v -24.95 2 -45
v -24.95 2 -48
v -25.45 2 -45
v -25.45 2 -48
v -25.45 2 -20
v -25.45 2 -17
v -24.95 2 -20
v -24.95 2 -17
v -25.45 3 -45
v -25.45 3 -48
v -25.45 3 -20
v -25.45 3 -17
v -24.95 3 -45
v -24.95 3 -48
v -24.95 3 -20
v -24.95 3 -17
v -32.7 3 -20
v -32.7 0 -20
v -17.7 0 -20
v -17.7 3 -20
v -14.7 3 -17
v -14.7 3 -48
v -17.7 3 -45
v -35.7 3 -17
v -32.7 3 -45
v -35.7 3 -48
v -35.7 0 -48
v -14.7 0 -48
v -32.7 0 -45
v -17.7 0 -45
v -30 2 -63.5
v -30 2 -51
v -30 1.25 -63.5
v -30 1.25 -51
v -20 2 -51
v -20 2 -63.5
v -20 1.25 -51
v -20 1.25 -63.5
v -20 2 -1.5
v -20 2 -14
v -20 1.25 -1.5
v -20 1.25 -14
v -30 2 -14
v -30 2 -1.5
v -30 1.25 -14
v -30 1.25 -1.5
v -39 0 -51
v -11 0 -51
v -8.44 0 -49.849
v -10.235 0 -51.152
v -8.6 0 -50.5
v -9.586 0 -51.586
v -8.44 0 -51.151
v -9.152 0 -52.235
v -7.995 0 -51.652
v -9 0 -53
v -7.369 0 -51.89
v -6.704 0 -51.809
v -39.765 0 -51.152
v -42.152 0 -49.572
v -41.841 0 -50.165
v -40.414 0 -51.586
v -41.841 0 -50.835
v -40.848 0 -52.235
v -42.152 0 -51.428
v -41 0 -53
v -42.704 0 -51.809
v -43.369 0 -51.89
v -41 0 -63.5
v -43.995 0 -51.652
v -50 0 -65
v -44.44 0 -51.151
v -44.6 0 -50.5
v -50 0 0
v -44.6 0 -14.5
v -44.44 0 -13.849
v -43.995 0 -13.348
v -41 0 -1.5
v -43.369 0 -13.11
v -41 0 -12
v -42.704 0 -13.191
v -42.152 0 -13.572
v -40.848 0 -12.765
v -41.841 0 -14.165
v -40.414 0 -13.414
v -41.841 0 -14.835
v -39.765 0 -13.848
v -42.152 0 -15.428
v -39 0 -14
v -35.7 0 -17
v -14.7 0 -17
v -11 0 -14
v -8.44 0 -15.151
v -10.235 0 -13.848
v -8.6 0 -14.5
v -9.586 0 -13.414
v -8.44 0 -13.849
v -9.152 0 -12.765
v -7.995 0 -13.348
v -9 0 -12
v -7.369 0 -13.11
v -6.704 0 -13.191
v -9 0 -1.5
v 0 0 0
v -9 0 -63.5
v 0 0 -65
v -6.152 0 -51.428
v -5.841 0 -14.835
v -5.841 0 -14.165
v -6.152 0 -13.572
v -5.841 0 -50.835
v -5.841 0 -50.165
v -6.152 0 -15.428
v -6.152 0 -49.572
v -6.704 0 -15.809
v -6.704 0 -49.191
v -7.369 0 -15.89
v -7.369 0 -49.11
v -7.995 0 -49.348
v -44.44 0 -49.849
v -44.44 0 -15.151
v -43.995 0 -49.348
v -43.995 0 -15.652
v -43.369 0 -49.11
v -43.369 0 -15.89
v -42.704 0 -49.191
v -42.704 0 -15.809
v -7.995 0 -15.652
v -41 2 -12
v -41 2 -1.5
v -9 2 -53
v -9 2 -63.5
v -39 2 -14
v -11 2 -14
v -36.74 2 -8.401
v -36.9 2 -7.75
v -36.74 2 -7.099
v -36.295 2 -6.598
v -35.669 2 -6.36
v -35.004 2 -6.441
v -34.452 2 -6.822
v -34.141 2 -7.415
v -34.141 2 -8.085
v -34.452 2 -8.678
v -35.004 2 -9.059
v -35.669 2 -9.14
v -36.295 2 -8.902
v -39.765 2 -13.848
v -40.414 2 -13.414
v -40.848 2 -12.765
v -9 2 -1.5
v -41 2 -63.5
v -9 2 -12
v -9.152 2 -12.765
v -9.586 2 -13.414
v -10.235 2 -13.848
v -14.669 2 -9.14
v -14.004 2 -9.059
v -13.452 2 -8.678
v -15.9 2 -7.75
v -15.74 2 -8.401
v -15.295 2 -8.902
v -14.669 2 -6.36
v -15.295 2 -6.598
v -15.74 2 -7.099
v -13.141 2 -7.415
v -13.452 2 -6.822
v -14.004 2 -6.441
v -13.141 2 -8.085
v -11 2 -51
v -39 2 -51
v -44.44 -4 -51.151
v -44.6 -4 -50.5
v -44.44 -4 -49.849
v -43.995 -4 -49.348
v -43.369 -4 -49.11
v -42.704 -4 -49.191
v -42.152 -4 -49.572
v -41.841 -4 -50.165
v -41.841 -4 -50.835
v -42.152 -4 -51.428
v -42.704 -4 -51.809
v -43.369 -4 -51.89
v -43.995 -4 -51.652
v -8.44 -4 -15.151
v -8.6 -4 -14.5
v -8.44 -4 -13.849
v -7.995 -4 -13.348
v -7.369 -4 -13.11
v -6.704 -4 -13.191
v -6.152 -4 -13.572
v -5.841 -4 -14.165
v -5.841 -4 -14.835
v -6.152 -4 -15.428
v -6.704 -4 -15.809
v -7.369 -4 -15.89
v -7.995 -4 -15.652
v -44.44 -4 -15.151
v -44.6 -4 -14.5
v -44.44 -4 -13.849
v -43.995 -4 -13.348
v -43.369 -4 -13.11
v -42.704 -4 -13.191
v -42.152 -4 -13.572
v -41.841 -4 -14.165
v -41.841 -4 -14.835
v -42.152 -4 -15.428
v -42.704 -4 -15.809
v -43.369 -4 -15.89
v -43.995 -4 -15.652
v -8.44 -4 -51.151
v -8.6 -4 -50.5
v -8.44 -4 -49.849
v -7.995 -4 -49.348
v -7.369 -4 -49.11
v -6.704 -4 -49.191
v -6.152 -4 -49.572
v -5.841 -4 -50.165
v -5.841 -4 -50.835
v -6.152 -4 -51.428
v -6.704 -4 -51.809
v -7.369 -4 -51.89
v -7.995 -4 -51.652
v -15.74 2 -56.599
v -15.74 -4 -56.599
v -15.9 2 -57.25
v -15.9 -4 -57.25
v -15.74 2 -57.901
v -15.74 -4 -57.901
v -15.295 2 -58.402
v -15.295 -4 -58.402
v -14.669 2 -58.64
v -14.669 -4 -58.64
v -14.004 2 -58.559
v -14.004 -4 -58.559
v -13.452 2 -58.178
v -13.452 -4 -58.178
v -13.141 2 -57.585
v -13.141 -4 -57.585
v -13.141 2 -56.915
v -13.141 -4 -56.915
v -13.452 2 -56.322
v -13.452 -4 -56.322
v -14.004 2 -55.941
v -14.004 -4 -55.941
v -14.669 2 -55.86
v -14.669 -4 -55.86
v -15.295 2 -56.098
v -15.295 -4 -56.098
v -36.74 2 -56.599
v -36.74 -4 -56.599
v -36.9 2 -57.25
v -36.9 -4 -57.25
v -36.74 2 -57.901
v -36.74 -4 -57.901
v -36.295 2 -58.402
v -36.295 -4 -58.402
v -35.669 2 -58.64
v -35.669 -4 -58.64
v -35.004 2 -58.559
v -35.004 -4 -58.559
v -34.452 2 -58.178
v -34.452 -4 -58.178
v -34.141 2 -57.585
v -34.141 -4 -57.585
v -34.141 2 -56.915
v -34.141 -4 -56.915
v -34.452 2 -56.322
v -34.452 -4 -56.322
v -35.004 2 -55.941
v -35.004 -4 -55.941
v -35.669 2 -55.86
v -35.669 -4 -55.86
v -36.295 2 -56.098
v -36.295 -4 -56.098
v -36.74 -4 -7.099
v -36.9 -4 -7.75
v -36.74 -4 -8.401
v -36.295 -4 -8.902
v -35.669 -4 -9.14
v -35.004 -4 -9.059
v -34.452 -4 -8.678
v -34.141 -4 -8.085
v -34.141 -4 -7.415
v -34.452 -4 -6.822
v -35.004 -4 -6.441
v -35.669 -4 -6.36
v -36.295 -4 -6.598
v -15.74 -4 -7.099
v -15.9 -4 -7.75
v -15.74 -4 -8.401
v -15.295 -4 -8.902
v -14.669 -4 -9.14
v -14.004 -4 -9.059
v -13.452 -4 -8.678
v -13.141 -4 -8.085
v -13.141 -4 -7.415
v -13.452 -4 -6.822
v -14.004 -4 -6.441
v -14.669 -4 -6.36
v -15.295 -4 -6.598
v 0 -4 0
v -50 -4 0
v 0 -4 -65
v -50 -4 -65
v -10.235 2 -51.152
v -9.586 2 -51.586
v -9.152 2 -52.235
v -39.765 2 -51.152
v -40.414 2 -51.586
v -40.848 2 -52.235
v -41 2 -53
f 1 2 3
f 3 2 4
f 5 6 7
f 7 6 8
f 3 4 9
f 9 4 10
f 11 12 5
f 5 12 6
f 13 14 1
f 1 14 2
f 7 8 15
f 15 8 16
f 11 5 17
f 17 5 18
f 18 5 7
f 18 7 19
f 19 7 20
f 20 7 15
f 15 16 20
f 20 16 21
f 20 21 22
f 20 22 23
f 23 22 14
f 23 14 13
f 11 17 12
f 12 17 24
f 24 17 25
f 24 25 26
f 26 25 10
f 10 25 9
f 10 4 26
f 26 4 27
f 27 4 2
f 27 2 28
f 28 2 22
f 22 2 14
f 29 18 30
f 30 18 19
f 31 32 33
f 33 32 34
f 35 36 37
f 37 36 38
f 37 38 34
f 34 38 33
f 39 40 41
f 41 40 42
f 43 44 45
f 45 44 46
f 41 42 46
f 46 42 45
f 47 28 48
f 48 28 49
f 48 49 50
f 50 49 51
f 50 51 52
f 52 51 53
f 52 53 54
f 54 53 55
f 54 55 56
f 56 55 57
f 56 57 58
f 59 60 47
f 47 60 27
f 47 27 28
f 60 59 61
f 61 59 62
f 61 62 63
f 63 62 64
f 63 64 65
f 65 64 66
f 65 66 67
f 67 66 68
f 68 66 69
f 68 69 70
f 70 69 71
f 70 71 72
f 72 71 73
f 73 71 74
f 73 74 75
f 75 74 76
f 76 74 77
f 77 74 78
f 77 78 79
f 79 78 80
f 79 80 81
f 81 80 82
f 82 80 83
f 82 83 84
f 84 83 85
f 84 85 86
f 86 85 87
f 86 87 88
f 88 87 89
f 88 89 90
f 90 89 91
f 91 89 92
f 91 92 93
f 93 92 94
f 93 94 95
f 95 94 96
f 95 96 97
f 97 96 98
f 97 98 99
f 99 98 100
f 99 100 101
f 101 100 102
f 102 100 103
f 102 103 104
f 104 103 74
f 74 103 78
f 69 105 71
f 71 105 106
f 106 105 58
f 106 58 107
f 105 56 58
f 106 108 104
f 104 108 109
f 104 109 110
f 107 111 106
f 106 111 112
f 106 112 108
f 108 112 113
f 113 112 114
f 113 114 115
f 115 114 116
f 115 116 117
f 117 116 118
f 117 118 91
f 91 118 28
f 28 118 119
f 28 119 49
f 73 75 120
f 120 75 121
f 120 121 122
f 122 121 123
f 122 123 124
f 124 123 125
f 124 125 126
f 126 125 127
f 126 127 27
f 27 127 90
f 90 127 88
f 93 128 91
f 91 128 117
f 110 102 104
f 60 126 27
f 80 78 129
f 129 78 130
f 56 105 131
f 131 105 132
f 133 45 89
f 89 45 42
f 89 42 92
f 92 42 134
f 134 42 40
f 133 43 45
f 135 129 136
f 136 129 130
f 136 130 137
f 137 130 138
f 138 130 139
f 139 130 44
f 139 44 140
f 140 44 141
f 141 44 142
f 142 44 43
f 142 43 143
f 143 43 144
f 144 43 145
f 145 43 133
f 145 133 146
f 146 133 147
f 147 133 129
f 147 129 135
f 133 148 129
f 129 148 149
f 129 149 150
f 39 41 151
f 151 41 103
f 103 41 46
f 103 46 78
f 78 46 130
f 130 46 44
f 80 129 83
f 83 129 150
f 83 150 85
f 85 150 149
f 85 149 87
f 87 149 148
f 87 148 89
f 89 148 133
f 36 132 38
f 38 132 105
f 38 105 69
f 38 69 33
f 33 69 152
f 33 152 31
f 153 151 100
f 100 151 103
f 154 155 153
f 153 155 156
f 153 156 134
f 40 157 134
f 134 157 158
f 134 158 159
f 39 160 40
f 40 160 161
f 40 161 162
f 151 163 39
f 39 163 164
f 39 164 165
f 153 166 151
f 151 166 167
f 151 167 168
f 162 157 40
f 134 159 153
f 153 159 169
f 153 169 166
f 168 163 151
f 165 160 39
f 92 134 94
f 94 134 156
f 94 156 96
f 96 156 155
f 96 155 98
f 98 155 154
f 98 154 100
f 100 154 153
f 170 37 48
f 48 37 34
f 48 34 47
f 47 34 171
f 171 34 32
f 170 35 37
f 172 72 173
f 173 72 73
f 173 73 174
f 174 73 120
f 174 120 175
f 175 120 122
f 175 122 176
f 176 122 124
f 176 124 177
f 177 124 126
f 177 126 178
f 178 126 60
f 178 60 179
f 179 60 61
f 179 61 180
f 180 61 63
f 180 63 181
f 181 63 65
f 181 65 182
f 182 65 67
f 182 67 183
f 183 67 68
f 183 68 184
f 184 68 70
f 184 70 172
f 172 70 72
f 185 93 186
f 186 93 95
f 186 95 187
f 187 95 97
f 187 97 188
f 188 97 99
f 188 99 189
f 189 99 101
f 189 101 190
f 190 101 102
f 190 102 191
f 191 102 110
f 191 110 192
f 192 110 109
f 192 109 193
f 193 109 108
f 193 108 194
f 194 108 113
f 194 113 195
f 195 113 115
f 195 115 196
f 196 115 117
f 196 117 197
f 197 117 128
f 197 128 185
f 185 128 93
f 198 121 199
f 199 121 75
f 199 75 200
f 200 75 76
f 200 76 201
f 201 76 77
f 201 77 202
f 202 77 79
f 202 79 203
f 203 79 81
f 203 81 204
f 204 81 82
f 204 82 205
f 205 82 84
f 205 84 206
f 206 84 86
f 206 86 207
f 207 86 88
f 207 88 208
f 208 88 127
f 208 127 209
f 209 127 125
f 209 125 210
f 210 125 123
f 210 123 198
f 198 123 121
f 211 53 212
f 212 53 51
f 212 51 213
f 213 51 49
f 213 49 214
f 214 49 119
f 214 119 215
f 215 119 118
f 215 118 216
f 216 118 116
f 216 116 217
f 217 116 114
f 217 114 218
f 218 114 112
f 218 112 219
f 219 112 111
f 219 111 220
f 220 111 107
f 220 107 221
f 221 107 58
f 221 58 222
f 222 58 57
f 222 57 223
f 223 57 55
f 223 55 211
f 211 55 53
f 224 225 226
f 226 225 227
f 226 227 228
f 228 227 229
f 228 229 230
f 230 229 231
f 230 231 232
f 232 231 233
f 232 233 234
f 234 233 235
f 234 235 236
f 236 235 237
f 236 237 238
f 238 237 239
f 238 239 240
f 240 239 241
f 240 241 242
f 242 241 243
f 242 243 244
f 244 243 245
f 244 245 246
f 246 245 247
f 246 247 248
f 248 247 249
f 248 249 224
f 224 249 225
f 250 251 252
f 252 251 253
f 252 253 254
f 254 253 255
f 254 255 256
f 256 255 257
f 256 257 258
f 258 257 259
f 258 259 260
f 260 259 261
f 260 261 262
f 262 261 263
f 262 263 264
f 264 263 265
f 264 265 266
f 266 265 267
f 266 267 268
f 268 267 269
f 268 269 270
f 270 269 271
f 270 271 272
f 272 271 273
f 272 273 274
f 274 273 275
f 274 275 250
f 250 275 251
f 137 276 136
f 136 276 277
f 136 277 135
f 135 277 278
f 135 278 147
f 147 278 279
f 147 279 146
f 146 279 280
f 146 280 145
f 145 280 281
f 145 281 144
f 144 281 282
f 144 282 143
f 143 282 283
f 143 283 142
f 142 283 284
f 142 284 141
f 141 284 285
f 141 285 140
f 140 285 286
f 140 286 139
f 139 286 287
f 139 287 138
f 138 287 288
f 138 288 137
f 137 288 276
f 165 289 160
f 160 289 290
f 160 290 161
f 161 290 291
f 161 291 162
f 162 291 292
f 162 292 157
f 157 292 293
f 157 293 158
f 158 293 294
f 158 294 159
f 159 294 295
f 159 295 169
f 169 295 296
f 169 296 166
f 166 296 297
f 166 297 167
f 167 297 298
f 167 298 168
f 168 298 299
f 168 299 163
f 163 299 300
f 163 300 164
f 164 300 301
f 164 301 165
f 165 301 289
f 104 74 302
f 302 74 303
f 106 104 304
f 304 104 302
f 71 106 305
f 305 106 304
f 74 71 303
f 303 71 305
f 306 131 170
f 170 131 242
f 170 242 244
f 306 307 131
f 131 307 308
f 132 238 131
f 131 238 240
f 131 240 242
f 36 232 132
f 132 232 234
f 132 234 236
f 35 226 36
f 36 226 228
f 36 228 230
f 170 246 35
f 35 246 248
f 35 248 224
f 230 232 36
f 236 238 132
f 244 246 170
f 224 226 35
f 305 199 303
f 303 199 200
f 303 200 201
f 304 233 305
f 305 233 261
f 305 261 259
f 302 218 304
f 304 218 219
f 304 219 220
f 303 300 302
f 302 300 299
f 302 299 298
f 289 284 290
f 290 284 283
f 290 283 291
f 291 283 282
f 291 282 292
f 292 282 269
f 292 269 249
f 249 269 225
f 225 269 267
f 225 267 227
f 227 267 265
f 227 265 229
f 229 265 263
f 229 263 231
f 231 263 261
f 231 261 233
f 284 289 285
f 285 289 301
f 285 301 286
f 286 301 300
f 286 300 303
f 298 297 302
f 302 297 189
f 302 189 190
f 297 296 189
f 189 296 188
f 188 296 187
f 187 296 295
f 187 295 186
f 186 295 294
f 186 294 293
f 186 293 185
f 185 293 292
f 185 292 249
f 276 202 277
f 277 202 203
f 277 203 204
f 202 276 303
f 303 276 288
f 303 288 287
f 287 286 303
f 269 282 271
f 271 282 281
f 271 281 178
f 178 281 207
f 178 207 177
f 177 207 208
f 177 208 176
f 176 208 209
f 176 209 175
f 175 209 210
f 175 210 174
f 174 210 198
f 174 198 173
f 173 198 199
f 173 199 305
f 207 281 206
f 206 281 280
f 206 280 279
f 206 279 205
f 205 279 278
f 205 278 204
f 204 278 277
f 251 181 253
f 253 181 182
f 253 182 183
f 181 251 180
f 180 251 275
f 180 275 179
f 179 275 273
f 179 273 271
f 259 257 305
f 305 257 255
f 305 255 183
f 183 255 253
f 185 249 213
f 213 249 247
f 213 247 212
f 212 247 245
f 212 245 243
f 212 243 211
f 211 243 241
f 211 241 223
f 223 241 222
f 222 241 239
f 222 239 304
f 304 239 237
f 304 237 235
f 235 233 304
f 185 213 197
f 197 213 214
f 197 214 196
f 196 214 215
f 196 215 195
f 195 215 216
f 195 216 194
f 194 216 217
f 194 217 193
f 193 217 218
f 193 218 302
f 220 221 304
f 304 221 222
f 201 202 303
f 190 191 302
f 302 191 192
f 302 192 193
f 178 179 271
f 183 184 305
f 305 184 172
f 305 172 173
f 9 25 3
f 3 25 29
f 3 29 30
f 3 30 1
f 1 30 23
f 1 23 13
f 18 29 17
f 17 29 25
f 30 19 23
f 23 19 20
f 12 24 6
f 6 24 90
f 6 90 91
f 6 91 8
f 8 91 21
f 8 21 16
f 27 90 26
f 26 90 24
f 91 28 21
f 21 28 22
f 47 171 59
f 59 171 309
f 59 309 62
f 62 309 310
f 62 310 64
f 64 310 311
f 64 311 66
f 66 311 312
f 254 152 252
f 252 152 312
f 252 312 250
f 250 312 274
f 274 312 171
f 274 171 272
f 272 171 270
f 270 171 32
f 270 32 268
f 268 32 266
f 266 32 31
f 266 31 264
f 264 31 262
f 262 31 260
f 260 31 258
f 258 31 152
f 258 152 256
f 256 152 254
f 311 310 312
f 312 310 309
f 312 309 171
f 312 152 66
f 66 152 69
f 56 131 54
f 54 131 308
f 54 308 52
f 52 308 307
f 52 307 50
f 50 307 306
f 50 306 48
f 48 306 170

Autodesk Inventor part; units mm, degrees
ref_plane "YZ Plane" through (0, 0, 0) normal (1, 0, 0) x (0, 1, 0)
ref_plane "XZ Plane" through (0, 0, 0) normal (0, 1, 0) x (-1, 0, 0)
ref_plane "XY Plane" through (0, 0, 0) normal (0, 0, 1) x (1, 0, 0)
sketch "Boceto1" plane through (0, 0, 0) normal (0, 1, 0) x (-1, 0, 0)
  line L0 (0, 0) -> (50, 0)
  line L1 (50, 0) -> (50, -65)
  line L2 (50, -65) -> (0, -65)
  line L3 (0, -65) -> (0, 0)
  line L4 (17.7, -45) -> (32.7, -45)
  line L5 (32.7, -45) -> (32.7, -20)
  line L6 (32.7, -20) -> (17.7, -20)
  line L7 (17.7, -20) -> (17.7, -45)
  line L8 (17.7, -45) -> (32.7, -20) construction
  line L9 (32.7, -45) -> (17.7, -20) construction
  line L10 (35.7, -17) -> (35.7, -48)
  line L11 (35.7, -48) -> (14.7, -48)
  line L12 (14.7, -48) -> (14.7, -17)
  line L13 (14.7, -17) -> (35.7, -17)
  line L14 (41, -1.5) -> (9, -1.5)
  line L15 (9, -1.5) -> (9, -14)
  line L16 (9, -14) -> (41, -14)
  line L17 (41, -14) -> (41, -1.5)
  line L18 (32.7, -32.5) -> (17.7, -32.5) construction
  line L19 (41, -7.75) -> (35.5, -7.75) construction
  line L20 (35.5, -7.75) -> (14.5, -7.75) construction
  line L21 (14.5, -7.75) -> (9, -7.75) construction
  circle A0 centre (35.5, -7.75) radius 1.4
  circle A1 centre (14.5, -7.75) radius 1.4
  line L22 (41, -63.5) -> (9, -63.5)
  line L23 (9, -63.5) -> (9, -51)
  line L24 (9, -51) -> (41, -51)
  line L25 (41, -51) -> (41, -63.5)
  circle A2 centre (35.5, -57.25) radius 1.4
  circle A3 centre (14.5, -57.25) radius 1.4
  line L26 (50, -32.5) -> (43.2, -32.5) construction
  line L27 (0, -32.5) -> (6.8, -32.5)
  line L28 (45.9347, 0) -> (45.9347, -14) construction
  line L29 (43.2, -32.5) -> (43.2, -14.5) construction
  line L30 (43.2, -14.5) -> (50, -14.5) construction
  circle A4 centre (43.2, -14.5) radius 1.4
  line L31 (25.2, -20) -> (25.2, -45) construction
  circle A5 centre (7.2, -14.5) radius 1.4
  circle A6 centre (35.5, -57.25) radius 1.4
  circle A7 centre (43.2, -50.5) radius 1.4
  circle A8 centre (7.2, -50.5) radius 1.4
  line L32 (35.5, -7.75) -> (14.5, -7.75)
  point P0 (25.2, -32.5)
  point P1 (25, -14)
  point P2 (25.2, -17)
  dimension "d0" = 65
  dimension "d1" = 50
  dimension "d2" = 25
  dimension "d3" = 15
  dimension "d4" = 3
  dimension "d5" = 12.5
  dimension "d6" = 32
  dimension "d7" = 3
  dimension "d8" = 5.5
  dimension "d9" = 5.5
  dimension "d10" = 2.8
  dimension "d11" = 2.8
  dimension "d12" = 6.8
  dimension "d13" = 6.8
  dimension "d14" = 14
  dimension "d15" = 2.8
  dimension "d30" = 36
  dimension "d31" = 36
  dimension "d32" = 1.5
extrude "Extrusión1" add sketch "Boceto1" along normal blind 3 contours L10 L11 L12 L13
extrude "Extrusión2" add sketch "Boceto1" against normal blind 4 contours L0 L1 L2 L3 | L17 L16 L15 L14 | L22 L23 L24 L25
extrude "Extrusión3" add sketch "Boceto1" along normal blind 2 contours L17 L16 L15 L14 | L22 L23 L24 L25
sketch "Boceto2" plane through (0, 2, 0) normal (0, 1, 0) x (1, 0, 0)
  line L0 (-41, 1.5) -> (-9, 1.5) projected
  line L1 (-25, 1.5) -> (-25, 14)
  line L2 (-9, 14) -> (-41, 14) projected
  line L3 (-20, 1.5) -> (-30, 1.5)
  line L4 (-30, 1.5) -> (-30, 14)
  line L5 (-30, 14) -> (-20, 14)
  line L6 (-20, 14) -> (-20, 1.5)
  line L7 (-20, 1.5) -> (-30, 14) construction
  line L8 (-30, 1.5) -> (-20, 14) construction
  line L9 (-32.7, 32.5) -> (-17.7, 32.5) construction
  line L10 (-41, 63.5) -> (-9, 63.5)
  line L11 (-9, 51) -> (-41, 51)
  line L12 (-30, 63.5) -> (-30, 51)
  line L13 (-20, 51) -> (-20, 63.5)
  point P0 (0, 0)
  point P1 (-25, 7.75)
  dimension "d22" = 10
extrude "Extrusión4" cut sketch "Boceto2" against normal blind 0.75
extrude "Extrusión5" add sketch "Boceto1" against normal blind 4 contours L7 L6 L5 L4 | L10 L11 L12 L13
sketch "Boceto3" plane through (0, 3, 0) normal (0, 1, 0) x (1, 0, 0)
  line L0 (-25.2, 20) -> (-25.2, 45) construction
  line L1 (-35.7, 17) -> (-14.7, 17) projected
  line L2 (-25.2, 17) -> (-25.2, 48)
  line L3 (-14.7, 48) -> (-35.7, 48) projected
  line L4 (-24.95, 17) -> (-25.45, 17)
  line L5 (-25.45, 17) -> (-25.45, 48)
  line L6 (-25.45, 48) -> (-24.95, 48)
  line L7 (-24.95, 48) -> (-24.95, 17)
  line L8 (-24.95, 17) -> (-25.45, 48) construction
  line L9 (-25.45, 17) -> (-24.95, 48) construction
  point P0 (0, 0)
  point P1 (-25.2, 32.5)
  point P2 (-24.95, 17)
  point P3 (-24.95, 48)
  point P4 (-25.45, 17)
  dimension "d27" = 0.5
extrude "Extrusión6" cut sketch "Boceto3" against normal blind 1
sketch "Boceto4" plane through (-41, 0, -1.5) normal (0, 0, 1) x (1, 0, 0)
  line L0 (16.05, 2) -> (15.55, 2) projected
  line L1 (21, 1.25) -> (11, 1.25) projected
  line L2 (-9, 0) -> (41, 0) projected
  line L3 (15.55, 2) -> (15.55, 3) projected
fillet "Empalme1" radius 2 4 edges at (-41, 1, -51) (-9, 1, -51) (-9, 1, -14) (-41, 1, -14)
equation "\"d9\" = d8"
equation "\"d13\" = d12"
properties part number "Molde 1FBR 1.0mm"
